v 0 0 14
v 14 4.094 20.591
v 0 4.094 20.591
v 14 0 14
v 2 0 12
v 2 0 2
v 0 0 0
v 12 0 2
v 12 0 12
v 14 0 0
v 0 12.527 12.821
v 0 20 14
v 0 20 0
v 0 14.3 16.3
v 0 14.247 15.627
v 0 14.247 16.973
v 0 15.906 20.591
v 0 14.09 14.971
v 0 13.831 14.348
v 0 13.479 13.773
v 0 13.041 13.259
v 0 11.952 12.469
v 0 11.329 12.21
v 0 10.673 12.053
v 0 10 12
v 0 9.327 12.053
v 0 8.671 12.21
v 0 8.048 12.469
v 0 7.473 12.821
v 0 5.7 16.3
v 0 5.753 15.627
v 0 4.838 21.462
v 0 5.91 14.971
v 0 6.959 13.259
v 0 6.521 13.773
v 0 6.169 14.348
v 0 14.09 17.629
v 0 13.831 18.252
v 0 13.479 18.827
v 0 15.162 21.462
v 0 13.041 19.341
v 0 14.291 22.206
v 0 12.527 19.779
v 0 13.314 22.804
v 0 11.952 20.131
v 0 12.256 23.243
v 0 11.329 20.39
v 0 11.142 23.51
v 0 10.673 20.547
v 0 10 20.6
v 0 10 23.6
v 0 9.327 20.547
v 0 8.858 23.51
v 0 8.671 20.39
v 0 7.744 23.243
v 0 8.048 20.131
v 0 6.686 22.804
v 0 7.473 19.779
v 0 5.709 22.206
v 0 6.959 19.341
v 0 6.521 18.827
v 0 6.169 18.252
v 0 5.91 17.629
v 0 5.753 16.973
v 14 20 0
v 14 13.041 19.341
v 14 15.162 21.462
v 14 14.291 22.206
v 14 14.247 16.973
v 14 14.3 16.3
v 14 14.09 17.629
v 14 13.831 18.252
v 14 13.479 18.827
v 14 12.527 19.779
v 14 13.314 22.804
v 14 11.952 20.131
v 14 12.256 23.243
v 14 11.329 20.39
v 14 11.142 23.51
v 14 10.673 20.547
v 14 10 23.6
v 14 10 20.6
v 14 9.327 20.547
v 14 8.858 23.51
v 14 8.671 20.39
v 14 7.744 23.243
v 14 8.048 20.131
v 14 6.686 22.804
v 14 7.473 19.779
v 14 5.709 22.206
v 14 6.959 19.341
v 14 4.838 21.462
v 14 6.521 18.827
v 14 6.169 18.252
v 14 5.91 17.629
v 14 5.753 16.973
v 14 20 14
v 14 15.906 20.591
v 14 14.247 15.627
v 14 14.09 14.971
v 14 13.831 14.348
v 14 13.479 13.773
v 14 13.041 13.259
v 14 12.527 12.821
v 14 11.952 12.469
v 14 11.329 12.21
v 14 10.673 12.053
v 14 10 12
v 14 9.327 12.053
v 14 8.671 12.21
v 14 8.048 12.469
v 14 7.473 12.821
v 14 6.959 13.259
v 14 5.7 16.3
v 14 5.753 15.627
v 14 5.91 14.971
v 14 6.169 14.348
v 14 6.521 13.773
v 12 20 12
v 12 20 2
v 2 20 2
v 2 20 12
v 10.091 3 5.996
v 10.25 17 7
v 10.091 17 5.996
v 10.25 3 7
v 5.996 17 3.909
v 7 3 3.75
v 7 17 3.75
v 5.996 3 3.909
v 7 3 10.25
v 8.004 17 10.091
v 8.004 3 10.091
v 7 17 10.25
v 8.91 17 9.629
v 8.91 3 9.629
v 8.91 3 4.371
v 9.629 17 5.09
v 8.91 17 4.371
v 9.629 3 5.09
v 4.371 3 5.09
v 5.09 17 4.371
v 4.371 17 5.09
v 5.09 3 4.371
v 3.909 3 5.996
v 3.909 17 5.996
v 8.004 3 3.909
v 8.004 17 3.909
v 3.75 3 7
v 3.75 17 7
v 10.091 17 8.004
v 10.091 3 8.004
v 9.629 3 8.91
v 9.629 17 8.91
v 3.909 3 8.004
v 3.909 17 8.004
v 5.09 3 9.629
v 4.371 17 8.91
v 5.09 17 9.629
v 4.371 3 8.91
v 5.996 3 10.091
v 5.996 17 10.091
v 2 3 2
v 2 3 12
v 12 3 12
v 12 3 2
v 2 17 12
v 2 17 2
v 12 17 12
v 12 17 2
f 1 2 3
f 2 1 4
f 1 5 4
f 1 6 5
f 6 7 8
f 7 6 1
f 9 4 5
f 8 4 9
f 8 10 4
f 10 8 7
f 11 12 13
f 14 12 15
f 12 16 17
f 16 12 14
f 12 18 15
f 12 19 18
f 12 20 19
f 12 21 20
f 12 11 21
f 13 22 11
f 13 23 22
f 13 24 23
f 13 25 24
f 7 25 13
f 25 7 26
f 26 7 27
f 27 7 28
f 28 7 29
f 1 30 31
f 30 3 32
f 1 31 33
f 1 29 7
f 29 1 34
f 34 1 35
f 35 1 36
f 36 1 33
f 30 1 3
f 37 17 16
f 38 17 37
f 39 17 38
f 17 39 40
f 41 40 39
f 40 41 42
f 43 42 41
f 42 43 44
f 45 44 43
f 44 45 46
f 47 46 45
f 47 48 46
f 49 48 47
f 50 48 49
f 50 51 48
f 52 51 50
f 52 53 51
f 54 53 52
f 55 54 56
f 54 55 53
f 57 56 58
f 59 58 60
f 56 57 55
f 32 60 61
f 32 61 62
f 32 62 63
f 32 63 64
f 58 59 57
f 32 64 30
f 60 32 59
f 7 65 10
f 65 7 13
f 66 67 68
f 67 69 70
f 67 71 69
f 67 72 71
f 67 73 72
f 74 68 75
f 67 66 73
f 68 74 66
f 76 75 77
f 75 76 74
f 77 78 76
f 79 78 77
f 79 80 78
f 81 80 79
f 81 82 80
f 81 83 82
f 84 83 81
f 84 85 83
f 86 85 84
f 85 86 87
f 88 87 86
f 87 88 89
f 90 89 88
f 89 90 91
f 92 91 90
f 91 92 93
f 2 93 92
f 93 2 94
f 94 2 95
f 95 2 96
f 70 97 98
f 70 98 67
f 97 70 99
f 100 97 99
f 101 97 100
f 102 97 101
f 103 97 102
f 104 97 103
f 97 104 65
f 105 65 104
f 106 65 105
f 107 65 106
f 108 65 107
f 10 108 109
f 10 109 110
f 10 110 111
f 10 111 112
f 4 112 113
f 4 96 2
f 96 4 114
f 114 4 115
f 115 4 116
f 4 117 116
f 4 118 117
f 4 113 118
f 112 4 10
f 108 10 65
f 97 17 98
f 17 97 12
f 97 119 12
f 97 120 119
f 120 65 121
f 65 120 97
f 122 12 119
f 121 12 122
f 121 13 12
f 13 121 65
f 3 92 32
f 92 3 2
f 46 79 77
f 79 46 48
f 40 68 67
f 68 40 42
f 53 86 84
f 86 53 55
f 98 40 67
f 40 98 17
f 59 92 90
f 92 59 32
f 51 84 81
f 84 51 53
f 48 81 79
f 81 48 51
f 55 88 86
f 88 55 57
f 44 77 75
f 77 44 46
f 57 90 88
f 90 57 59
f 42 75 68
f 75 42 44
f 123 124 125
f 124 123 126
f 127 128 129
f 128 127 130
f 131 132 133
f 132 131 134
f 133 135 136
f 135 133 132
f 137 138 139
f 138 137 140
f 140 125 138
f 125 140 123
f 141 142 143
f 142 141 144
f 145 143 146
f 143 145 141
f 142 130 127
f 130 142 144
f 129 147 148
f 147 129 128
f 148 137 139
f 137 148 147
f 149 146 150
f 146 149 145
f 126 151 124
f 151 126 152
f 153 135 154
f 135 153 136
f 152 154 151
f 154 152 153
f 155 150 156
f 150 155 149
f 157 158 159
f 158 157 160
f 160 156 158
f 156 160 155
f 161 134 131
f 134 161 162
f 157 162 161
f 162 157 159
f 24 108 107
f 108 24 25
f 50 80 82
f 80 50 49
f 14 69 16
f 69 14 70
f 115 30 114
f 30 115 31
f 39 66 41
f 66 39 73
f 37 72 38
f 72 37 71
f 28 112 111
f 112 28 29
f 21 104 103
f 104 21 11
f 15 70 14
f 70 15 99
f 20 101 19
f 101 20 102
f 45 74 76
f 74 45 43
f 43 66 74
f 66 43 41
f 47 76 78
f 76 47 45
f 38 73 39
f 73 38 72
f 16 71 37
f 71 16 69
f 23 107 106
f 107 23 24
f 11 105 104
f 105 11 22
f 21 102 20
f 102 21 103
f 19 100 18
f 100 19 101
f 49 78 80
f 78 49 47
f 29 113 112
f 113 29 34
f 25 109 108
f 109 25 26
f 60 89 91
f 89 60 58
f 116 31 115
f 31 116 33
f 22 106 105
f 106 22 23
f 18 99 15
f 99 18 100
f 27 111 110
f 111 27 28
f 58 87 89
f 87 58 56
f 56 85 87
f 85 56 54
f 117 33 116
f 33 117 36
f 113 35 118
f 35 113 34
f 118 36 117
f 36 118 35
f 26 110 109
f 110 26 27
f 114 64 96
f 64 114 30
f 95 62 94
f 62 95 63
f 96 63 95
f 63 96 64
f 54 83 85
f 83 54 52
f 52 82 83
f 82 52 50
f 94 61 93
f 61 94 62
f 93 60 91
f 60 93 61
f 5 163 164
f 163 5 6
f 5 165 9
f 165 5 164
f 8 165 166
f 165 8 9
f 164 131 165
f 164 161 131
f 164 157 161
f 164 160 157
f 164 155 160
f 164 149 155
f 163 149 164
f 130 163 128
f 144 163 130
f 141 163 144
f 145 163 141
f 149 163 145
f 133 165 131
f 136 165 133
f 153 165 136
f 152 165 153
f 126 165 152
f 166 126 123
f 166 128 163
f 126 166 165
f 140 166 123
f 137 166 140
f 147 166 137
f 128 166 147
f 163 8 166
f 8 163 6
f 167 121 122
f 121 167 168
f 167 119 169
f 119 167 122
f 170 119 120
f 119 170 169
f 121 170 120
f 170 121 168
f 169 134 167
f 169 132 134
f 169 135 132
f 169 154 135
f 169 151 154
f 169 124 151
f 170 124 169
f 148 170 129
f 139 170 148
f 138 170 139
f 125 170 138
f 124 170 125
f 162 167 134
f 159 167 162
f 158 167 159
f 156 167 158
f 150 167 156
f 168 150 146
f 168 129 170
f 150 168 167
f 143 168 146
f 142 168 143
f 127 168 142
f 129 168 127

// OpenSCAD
// file: ../src/888_5009.scad
include <../parameters.scad>

module 888_5009() {
    size = 20;
    wall_around_nut = 2;
    difference() {
        hull() {
            cube([M6_square_nut_diameter+wall_around_nut*2, size, M6_square_nut_diameter+wall_around_nut*2]);
            translate([0, size/2, M6_square_nut_diameter+wall_around_nut+M8_screw_diameter/2])
                rotate([0, 90, 0])
                    cylinder(d=M8_screw_diameter+6, h=M6_square_nut_diameter+wall_around_nut*2, $fn=40);
        }

        translate([M6_square_nut_diameter/2+wall_around_nut, 0, M6_square_nut_diameter/2+wall_around_nut])
            rotate([-90, 0, 0])
                cylinder(d=M6_screw_diameter, h=size, $fn=20);

        translate([-0.1, size/2, M6_square_nut_diameter+wall_around_nut+M8_screw_diameter/2])
            rotate([0, 90, 0])
                cylinder(d=M8_screw_diameter, h=M6_square_nut_diameter+0.2+wall_around_nut*2, $fn=40);

        translate([wall_around_nut, -0.1, wall_around_nut])
            cube([M6_square_nut_diameter, M6_square_nut_height+0.1, M6_square_nut_diameter]);

        translate([wall_around_nut, size-M6_square_nut_height, wall_around_nut])
            cube([M6_square_nut_diameter, M6_square_nut_height+0.1, M6_square_nut_diameter]);
    }
}

888_5009();
// file: ../parameters.scad
maximum_printable_size = 150;

layer_thickness = 0.3;
global_clearance = 0.5;


// scale parameters
tower_height = 220;
mid_base_width = 400;
mid_base_height = 160;
mid_base_length = 300;
base_mid_base_hinge_offset = 50;
counterweight_length = 200;


//Screw diameter and nut for M10 [mm]
M10_screw_diameter = 10.4;
M10_head_height = 10;
M10_head_diameter = 16+0.5;
M10_nut_height = 10.5;
M10_nut_diameter = 25.5;
M10_nut_pocket = 22.3;

//Screw diameter for M8 [mm]
M8_screw_diameter = 8.6;
M8_head_height = 8;
M8_head_diameter = 13.5;
M8_nut_height = 7.5;
M8_square_nut_thin_height = 4.5;
M8_nut_diameter = 14.4 + 0.5;
M8_nut_pocket = 13 + 0.5;
M8_washer_diameter = 16;
M8_washer_thickness = 1.5;


//Screw diameter and nut for M6 [mm]
M6_screw_diameter=6.5;
M6_head_diameter = 10+0.5;
M6_head_height = 6;
M6_nut_height = 4.9;
M6_nut_diameter = 11.8;
M6_nut_pocket = 10.4;
M6_square_nut_height = 3;
M6_square_nut_diameter = 10;
M6_washer_thickness = 1.6;

//Screw diameter and nut for M5 [mm]
M5_screw_diameter=5.5;
M5_head_height = 5;
M5_head_diameter = 13+0.5;
M5_nut_height = 4.5;
M5_nut_diameter = 9.4;
M5_nut_pocket = 8.4;

//Screw diameter and nut for M4 [mm]
M4_screw_diameter=4.5;
M4_screw_head_height = 4;
M4_nut_height = 3.2;
M4_nut_diameter = 8.4;
M4_nut_pocket = 7.5;

//Screw diameter and nut for M3 [mm]
M3_screw_diameter = 3.2;
M3_nut_height = 2.7;
M3_nut_diameter = 6.6;
M3_nut_pocket = 5.6;
M3_screw_head_height = 3;

//Screw diameter and nut for M2,5 [mm]
M2_5_screw_diameter = 2.7;
M2_5_nut_height = 2.3;
M2_5_nut_diameter = 6;
M2_5_nut_pocket = 5.5;

// kulove lozisko

bearing_efsm_08_h = 33+1;
bearing_efsm_08_m = 22;
bearing_efsm_08_db = 18;
bearing_efsm_08_ag = 10.5;
bearing_efsm_08_n = M4_screw_diameter;
bearing_efsm_08_a1 = 5.5;
bearing_efsm_08_d = 8.25;
bearing_efsm_08_B = 8; // ball height

bearing_efsm_10_h = 38+1;
bearing_efsm_10_m = 26;
bearing_efsm_10_db = 21.9;
bearing_efsm_10_ag = 12+0.2;
bearing_efsm_10_n = M5_screw_diameter;
bearing_efsm_10_a1 = 6.5;
bearing_efsm_10_d = 10.25;


bearing_efsm_12_width = 40+1;
bearing_efsm_12_h = bearing_efsm_12_width;
bearing_efsm_12_boltd = 28/2; // polovina vzdalenosti mezi srouby
bearing_efsm_12_m = bearing_efsm_12_boltd*2;
bearing_efsm_12_db = 25;
bearing_efsm_12_ag = 13;
bearing_efsm_12_a1 = 7;
bearing_efsm_12_n = M5_screw_diameter;
bearing_efsm_12_d = 12.15;
bearing_efsm_12_B = 10; // ball height
bearing_efsm_space = 1;

bearing_efsm_17_width = 54+1;
bearing_efsm_17_h = bearing_efsm_17_width;
bearing_efsm_17_boltd = 38/2; // polovina vzdalenosti mezi srouby
bearing_efsm_17_m = bearing_efsm_17_boltd*2;
bearing_efsm_17_db = 35;
bearing_efsm_17_ag = 18;
bearing_efsm_17_n = M6_screw_diameter;
bearing_efsm_17_a1 = 10;
bearing_efsm_17_B = 17; // ball height

//limcove lozisko
bearing_EFOM_10_L=26; //celkova sirka zakladny
bearing_EFOM_10_d1=10.3;//diametr otvoru real=10 mm
bearing_EFOM_10_dB=22;//diametr vystupku pro ulozeni lozika
bearing_EFOM_10_H=52;//celková delka zakladny
bearing_EFOM_10_J=36;// hole pitch
bearing_EFOM_10_A1=6.5;//vyska pouzdra
bearing_EFOM_10_Ag=12;//celkova vyska
bearing_EFOM_10_N1=5;//sirka otvoru pro sroub
bearing_EFOM_10_N2=8;//delka otvoru pro sroub
bearing_EFOM_10_m=36;//roztec der pro sroub
bearing_EFOM_10_h=9;//vyska lozika


608_bearing_outer_diameter = 22.3;
608_bearing_inner_diameter = 16;
608_bearing_thickness = 7.1;


// 20 KG servo parameters

servo_20kg_axis_offset = 9.375; // jak je osa mimo stredu
servo_20kg_body_x = 42;
servo_20kg_body_y = 21;
servo_20kg_body_z = 40;
servo_20kg_thread_x = 49/2;
servo_20kg_thread_y = 10/2;
servo_20kg_body_below = 10; // jak hluboko je tělo serva pod drzaky na srouby
servo_20kg_below = 25.8; // jak hluboko je páka serva pod drzaky na srouby

servo_20kg_bolt_d = 2.5+0.3;
servo_20kg_nut_d = 5+0.3;


//strain gauge
strain_gauge_width = 12.7;
strain_gauge_length = 75.1;
strain_gauge_screw_distance = 10;

//ALU profile
ALU_profile_width = 30.5;
ALU_profile_holder_wall_thickness = 3;
ALU_profile_groove_width = 8;

//pillow block bearing
//https://www.igus.eu/product/372
//Part no. KSTM-08
KSTM08_screws_distance = 33;         //m
KSTM08_screws_holes_diameter = 4.5;  //d2
KSTM08_flange_thickness = 6;         //h3
KSTM08_case_width = 9;               //C1
KSTM08_case_length = 47;             //a
KSTM08_ball_width = 12;              //B
KSTM08_ball_hole_diameter = 7.85;    //d1


//ložiska pro malý rotor
bearing_outer_diameter = 10.2;    // Rozměr B1 v nákresu s přídavkem na toleranci otvoru
bearing_thickness = 4;        // Rozměr B2 v nákresu
//bearing_shaft_length = 19.5;    // Rozměr B3 v nákresu, Originalni hodnota 19.5
bearing_shaft_length = 20;    // Rozměr B3 v nákresu


//parametry víčka s telemetrickou anténou
S01_sila_materialu=1.2;
S01_vyska_horni_zavit=10;
S01_hloubka_zavitu=4;
S01_prumer_vnitrni=50;
LO_spodni_prumer=17.2;
LO_vyska_bez_krytu=15;
S01_tolerance_zavit=1.5;
R01_vyska_prekryti_statoru=10;

g3_0_cone1 = 70;
g3_0_srcew_dist = 55;
// main file
include <../parameters.scad>
use <../src/888_5009.scad>

888_5009();
